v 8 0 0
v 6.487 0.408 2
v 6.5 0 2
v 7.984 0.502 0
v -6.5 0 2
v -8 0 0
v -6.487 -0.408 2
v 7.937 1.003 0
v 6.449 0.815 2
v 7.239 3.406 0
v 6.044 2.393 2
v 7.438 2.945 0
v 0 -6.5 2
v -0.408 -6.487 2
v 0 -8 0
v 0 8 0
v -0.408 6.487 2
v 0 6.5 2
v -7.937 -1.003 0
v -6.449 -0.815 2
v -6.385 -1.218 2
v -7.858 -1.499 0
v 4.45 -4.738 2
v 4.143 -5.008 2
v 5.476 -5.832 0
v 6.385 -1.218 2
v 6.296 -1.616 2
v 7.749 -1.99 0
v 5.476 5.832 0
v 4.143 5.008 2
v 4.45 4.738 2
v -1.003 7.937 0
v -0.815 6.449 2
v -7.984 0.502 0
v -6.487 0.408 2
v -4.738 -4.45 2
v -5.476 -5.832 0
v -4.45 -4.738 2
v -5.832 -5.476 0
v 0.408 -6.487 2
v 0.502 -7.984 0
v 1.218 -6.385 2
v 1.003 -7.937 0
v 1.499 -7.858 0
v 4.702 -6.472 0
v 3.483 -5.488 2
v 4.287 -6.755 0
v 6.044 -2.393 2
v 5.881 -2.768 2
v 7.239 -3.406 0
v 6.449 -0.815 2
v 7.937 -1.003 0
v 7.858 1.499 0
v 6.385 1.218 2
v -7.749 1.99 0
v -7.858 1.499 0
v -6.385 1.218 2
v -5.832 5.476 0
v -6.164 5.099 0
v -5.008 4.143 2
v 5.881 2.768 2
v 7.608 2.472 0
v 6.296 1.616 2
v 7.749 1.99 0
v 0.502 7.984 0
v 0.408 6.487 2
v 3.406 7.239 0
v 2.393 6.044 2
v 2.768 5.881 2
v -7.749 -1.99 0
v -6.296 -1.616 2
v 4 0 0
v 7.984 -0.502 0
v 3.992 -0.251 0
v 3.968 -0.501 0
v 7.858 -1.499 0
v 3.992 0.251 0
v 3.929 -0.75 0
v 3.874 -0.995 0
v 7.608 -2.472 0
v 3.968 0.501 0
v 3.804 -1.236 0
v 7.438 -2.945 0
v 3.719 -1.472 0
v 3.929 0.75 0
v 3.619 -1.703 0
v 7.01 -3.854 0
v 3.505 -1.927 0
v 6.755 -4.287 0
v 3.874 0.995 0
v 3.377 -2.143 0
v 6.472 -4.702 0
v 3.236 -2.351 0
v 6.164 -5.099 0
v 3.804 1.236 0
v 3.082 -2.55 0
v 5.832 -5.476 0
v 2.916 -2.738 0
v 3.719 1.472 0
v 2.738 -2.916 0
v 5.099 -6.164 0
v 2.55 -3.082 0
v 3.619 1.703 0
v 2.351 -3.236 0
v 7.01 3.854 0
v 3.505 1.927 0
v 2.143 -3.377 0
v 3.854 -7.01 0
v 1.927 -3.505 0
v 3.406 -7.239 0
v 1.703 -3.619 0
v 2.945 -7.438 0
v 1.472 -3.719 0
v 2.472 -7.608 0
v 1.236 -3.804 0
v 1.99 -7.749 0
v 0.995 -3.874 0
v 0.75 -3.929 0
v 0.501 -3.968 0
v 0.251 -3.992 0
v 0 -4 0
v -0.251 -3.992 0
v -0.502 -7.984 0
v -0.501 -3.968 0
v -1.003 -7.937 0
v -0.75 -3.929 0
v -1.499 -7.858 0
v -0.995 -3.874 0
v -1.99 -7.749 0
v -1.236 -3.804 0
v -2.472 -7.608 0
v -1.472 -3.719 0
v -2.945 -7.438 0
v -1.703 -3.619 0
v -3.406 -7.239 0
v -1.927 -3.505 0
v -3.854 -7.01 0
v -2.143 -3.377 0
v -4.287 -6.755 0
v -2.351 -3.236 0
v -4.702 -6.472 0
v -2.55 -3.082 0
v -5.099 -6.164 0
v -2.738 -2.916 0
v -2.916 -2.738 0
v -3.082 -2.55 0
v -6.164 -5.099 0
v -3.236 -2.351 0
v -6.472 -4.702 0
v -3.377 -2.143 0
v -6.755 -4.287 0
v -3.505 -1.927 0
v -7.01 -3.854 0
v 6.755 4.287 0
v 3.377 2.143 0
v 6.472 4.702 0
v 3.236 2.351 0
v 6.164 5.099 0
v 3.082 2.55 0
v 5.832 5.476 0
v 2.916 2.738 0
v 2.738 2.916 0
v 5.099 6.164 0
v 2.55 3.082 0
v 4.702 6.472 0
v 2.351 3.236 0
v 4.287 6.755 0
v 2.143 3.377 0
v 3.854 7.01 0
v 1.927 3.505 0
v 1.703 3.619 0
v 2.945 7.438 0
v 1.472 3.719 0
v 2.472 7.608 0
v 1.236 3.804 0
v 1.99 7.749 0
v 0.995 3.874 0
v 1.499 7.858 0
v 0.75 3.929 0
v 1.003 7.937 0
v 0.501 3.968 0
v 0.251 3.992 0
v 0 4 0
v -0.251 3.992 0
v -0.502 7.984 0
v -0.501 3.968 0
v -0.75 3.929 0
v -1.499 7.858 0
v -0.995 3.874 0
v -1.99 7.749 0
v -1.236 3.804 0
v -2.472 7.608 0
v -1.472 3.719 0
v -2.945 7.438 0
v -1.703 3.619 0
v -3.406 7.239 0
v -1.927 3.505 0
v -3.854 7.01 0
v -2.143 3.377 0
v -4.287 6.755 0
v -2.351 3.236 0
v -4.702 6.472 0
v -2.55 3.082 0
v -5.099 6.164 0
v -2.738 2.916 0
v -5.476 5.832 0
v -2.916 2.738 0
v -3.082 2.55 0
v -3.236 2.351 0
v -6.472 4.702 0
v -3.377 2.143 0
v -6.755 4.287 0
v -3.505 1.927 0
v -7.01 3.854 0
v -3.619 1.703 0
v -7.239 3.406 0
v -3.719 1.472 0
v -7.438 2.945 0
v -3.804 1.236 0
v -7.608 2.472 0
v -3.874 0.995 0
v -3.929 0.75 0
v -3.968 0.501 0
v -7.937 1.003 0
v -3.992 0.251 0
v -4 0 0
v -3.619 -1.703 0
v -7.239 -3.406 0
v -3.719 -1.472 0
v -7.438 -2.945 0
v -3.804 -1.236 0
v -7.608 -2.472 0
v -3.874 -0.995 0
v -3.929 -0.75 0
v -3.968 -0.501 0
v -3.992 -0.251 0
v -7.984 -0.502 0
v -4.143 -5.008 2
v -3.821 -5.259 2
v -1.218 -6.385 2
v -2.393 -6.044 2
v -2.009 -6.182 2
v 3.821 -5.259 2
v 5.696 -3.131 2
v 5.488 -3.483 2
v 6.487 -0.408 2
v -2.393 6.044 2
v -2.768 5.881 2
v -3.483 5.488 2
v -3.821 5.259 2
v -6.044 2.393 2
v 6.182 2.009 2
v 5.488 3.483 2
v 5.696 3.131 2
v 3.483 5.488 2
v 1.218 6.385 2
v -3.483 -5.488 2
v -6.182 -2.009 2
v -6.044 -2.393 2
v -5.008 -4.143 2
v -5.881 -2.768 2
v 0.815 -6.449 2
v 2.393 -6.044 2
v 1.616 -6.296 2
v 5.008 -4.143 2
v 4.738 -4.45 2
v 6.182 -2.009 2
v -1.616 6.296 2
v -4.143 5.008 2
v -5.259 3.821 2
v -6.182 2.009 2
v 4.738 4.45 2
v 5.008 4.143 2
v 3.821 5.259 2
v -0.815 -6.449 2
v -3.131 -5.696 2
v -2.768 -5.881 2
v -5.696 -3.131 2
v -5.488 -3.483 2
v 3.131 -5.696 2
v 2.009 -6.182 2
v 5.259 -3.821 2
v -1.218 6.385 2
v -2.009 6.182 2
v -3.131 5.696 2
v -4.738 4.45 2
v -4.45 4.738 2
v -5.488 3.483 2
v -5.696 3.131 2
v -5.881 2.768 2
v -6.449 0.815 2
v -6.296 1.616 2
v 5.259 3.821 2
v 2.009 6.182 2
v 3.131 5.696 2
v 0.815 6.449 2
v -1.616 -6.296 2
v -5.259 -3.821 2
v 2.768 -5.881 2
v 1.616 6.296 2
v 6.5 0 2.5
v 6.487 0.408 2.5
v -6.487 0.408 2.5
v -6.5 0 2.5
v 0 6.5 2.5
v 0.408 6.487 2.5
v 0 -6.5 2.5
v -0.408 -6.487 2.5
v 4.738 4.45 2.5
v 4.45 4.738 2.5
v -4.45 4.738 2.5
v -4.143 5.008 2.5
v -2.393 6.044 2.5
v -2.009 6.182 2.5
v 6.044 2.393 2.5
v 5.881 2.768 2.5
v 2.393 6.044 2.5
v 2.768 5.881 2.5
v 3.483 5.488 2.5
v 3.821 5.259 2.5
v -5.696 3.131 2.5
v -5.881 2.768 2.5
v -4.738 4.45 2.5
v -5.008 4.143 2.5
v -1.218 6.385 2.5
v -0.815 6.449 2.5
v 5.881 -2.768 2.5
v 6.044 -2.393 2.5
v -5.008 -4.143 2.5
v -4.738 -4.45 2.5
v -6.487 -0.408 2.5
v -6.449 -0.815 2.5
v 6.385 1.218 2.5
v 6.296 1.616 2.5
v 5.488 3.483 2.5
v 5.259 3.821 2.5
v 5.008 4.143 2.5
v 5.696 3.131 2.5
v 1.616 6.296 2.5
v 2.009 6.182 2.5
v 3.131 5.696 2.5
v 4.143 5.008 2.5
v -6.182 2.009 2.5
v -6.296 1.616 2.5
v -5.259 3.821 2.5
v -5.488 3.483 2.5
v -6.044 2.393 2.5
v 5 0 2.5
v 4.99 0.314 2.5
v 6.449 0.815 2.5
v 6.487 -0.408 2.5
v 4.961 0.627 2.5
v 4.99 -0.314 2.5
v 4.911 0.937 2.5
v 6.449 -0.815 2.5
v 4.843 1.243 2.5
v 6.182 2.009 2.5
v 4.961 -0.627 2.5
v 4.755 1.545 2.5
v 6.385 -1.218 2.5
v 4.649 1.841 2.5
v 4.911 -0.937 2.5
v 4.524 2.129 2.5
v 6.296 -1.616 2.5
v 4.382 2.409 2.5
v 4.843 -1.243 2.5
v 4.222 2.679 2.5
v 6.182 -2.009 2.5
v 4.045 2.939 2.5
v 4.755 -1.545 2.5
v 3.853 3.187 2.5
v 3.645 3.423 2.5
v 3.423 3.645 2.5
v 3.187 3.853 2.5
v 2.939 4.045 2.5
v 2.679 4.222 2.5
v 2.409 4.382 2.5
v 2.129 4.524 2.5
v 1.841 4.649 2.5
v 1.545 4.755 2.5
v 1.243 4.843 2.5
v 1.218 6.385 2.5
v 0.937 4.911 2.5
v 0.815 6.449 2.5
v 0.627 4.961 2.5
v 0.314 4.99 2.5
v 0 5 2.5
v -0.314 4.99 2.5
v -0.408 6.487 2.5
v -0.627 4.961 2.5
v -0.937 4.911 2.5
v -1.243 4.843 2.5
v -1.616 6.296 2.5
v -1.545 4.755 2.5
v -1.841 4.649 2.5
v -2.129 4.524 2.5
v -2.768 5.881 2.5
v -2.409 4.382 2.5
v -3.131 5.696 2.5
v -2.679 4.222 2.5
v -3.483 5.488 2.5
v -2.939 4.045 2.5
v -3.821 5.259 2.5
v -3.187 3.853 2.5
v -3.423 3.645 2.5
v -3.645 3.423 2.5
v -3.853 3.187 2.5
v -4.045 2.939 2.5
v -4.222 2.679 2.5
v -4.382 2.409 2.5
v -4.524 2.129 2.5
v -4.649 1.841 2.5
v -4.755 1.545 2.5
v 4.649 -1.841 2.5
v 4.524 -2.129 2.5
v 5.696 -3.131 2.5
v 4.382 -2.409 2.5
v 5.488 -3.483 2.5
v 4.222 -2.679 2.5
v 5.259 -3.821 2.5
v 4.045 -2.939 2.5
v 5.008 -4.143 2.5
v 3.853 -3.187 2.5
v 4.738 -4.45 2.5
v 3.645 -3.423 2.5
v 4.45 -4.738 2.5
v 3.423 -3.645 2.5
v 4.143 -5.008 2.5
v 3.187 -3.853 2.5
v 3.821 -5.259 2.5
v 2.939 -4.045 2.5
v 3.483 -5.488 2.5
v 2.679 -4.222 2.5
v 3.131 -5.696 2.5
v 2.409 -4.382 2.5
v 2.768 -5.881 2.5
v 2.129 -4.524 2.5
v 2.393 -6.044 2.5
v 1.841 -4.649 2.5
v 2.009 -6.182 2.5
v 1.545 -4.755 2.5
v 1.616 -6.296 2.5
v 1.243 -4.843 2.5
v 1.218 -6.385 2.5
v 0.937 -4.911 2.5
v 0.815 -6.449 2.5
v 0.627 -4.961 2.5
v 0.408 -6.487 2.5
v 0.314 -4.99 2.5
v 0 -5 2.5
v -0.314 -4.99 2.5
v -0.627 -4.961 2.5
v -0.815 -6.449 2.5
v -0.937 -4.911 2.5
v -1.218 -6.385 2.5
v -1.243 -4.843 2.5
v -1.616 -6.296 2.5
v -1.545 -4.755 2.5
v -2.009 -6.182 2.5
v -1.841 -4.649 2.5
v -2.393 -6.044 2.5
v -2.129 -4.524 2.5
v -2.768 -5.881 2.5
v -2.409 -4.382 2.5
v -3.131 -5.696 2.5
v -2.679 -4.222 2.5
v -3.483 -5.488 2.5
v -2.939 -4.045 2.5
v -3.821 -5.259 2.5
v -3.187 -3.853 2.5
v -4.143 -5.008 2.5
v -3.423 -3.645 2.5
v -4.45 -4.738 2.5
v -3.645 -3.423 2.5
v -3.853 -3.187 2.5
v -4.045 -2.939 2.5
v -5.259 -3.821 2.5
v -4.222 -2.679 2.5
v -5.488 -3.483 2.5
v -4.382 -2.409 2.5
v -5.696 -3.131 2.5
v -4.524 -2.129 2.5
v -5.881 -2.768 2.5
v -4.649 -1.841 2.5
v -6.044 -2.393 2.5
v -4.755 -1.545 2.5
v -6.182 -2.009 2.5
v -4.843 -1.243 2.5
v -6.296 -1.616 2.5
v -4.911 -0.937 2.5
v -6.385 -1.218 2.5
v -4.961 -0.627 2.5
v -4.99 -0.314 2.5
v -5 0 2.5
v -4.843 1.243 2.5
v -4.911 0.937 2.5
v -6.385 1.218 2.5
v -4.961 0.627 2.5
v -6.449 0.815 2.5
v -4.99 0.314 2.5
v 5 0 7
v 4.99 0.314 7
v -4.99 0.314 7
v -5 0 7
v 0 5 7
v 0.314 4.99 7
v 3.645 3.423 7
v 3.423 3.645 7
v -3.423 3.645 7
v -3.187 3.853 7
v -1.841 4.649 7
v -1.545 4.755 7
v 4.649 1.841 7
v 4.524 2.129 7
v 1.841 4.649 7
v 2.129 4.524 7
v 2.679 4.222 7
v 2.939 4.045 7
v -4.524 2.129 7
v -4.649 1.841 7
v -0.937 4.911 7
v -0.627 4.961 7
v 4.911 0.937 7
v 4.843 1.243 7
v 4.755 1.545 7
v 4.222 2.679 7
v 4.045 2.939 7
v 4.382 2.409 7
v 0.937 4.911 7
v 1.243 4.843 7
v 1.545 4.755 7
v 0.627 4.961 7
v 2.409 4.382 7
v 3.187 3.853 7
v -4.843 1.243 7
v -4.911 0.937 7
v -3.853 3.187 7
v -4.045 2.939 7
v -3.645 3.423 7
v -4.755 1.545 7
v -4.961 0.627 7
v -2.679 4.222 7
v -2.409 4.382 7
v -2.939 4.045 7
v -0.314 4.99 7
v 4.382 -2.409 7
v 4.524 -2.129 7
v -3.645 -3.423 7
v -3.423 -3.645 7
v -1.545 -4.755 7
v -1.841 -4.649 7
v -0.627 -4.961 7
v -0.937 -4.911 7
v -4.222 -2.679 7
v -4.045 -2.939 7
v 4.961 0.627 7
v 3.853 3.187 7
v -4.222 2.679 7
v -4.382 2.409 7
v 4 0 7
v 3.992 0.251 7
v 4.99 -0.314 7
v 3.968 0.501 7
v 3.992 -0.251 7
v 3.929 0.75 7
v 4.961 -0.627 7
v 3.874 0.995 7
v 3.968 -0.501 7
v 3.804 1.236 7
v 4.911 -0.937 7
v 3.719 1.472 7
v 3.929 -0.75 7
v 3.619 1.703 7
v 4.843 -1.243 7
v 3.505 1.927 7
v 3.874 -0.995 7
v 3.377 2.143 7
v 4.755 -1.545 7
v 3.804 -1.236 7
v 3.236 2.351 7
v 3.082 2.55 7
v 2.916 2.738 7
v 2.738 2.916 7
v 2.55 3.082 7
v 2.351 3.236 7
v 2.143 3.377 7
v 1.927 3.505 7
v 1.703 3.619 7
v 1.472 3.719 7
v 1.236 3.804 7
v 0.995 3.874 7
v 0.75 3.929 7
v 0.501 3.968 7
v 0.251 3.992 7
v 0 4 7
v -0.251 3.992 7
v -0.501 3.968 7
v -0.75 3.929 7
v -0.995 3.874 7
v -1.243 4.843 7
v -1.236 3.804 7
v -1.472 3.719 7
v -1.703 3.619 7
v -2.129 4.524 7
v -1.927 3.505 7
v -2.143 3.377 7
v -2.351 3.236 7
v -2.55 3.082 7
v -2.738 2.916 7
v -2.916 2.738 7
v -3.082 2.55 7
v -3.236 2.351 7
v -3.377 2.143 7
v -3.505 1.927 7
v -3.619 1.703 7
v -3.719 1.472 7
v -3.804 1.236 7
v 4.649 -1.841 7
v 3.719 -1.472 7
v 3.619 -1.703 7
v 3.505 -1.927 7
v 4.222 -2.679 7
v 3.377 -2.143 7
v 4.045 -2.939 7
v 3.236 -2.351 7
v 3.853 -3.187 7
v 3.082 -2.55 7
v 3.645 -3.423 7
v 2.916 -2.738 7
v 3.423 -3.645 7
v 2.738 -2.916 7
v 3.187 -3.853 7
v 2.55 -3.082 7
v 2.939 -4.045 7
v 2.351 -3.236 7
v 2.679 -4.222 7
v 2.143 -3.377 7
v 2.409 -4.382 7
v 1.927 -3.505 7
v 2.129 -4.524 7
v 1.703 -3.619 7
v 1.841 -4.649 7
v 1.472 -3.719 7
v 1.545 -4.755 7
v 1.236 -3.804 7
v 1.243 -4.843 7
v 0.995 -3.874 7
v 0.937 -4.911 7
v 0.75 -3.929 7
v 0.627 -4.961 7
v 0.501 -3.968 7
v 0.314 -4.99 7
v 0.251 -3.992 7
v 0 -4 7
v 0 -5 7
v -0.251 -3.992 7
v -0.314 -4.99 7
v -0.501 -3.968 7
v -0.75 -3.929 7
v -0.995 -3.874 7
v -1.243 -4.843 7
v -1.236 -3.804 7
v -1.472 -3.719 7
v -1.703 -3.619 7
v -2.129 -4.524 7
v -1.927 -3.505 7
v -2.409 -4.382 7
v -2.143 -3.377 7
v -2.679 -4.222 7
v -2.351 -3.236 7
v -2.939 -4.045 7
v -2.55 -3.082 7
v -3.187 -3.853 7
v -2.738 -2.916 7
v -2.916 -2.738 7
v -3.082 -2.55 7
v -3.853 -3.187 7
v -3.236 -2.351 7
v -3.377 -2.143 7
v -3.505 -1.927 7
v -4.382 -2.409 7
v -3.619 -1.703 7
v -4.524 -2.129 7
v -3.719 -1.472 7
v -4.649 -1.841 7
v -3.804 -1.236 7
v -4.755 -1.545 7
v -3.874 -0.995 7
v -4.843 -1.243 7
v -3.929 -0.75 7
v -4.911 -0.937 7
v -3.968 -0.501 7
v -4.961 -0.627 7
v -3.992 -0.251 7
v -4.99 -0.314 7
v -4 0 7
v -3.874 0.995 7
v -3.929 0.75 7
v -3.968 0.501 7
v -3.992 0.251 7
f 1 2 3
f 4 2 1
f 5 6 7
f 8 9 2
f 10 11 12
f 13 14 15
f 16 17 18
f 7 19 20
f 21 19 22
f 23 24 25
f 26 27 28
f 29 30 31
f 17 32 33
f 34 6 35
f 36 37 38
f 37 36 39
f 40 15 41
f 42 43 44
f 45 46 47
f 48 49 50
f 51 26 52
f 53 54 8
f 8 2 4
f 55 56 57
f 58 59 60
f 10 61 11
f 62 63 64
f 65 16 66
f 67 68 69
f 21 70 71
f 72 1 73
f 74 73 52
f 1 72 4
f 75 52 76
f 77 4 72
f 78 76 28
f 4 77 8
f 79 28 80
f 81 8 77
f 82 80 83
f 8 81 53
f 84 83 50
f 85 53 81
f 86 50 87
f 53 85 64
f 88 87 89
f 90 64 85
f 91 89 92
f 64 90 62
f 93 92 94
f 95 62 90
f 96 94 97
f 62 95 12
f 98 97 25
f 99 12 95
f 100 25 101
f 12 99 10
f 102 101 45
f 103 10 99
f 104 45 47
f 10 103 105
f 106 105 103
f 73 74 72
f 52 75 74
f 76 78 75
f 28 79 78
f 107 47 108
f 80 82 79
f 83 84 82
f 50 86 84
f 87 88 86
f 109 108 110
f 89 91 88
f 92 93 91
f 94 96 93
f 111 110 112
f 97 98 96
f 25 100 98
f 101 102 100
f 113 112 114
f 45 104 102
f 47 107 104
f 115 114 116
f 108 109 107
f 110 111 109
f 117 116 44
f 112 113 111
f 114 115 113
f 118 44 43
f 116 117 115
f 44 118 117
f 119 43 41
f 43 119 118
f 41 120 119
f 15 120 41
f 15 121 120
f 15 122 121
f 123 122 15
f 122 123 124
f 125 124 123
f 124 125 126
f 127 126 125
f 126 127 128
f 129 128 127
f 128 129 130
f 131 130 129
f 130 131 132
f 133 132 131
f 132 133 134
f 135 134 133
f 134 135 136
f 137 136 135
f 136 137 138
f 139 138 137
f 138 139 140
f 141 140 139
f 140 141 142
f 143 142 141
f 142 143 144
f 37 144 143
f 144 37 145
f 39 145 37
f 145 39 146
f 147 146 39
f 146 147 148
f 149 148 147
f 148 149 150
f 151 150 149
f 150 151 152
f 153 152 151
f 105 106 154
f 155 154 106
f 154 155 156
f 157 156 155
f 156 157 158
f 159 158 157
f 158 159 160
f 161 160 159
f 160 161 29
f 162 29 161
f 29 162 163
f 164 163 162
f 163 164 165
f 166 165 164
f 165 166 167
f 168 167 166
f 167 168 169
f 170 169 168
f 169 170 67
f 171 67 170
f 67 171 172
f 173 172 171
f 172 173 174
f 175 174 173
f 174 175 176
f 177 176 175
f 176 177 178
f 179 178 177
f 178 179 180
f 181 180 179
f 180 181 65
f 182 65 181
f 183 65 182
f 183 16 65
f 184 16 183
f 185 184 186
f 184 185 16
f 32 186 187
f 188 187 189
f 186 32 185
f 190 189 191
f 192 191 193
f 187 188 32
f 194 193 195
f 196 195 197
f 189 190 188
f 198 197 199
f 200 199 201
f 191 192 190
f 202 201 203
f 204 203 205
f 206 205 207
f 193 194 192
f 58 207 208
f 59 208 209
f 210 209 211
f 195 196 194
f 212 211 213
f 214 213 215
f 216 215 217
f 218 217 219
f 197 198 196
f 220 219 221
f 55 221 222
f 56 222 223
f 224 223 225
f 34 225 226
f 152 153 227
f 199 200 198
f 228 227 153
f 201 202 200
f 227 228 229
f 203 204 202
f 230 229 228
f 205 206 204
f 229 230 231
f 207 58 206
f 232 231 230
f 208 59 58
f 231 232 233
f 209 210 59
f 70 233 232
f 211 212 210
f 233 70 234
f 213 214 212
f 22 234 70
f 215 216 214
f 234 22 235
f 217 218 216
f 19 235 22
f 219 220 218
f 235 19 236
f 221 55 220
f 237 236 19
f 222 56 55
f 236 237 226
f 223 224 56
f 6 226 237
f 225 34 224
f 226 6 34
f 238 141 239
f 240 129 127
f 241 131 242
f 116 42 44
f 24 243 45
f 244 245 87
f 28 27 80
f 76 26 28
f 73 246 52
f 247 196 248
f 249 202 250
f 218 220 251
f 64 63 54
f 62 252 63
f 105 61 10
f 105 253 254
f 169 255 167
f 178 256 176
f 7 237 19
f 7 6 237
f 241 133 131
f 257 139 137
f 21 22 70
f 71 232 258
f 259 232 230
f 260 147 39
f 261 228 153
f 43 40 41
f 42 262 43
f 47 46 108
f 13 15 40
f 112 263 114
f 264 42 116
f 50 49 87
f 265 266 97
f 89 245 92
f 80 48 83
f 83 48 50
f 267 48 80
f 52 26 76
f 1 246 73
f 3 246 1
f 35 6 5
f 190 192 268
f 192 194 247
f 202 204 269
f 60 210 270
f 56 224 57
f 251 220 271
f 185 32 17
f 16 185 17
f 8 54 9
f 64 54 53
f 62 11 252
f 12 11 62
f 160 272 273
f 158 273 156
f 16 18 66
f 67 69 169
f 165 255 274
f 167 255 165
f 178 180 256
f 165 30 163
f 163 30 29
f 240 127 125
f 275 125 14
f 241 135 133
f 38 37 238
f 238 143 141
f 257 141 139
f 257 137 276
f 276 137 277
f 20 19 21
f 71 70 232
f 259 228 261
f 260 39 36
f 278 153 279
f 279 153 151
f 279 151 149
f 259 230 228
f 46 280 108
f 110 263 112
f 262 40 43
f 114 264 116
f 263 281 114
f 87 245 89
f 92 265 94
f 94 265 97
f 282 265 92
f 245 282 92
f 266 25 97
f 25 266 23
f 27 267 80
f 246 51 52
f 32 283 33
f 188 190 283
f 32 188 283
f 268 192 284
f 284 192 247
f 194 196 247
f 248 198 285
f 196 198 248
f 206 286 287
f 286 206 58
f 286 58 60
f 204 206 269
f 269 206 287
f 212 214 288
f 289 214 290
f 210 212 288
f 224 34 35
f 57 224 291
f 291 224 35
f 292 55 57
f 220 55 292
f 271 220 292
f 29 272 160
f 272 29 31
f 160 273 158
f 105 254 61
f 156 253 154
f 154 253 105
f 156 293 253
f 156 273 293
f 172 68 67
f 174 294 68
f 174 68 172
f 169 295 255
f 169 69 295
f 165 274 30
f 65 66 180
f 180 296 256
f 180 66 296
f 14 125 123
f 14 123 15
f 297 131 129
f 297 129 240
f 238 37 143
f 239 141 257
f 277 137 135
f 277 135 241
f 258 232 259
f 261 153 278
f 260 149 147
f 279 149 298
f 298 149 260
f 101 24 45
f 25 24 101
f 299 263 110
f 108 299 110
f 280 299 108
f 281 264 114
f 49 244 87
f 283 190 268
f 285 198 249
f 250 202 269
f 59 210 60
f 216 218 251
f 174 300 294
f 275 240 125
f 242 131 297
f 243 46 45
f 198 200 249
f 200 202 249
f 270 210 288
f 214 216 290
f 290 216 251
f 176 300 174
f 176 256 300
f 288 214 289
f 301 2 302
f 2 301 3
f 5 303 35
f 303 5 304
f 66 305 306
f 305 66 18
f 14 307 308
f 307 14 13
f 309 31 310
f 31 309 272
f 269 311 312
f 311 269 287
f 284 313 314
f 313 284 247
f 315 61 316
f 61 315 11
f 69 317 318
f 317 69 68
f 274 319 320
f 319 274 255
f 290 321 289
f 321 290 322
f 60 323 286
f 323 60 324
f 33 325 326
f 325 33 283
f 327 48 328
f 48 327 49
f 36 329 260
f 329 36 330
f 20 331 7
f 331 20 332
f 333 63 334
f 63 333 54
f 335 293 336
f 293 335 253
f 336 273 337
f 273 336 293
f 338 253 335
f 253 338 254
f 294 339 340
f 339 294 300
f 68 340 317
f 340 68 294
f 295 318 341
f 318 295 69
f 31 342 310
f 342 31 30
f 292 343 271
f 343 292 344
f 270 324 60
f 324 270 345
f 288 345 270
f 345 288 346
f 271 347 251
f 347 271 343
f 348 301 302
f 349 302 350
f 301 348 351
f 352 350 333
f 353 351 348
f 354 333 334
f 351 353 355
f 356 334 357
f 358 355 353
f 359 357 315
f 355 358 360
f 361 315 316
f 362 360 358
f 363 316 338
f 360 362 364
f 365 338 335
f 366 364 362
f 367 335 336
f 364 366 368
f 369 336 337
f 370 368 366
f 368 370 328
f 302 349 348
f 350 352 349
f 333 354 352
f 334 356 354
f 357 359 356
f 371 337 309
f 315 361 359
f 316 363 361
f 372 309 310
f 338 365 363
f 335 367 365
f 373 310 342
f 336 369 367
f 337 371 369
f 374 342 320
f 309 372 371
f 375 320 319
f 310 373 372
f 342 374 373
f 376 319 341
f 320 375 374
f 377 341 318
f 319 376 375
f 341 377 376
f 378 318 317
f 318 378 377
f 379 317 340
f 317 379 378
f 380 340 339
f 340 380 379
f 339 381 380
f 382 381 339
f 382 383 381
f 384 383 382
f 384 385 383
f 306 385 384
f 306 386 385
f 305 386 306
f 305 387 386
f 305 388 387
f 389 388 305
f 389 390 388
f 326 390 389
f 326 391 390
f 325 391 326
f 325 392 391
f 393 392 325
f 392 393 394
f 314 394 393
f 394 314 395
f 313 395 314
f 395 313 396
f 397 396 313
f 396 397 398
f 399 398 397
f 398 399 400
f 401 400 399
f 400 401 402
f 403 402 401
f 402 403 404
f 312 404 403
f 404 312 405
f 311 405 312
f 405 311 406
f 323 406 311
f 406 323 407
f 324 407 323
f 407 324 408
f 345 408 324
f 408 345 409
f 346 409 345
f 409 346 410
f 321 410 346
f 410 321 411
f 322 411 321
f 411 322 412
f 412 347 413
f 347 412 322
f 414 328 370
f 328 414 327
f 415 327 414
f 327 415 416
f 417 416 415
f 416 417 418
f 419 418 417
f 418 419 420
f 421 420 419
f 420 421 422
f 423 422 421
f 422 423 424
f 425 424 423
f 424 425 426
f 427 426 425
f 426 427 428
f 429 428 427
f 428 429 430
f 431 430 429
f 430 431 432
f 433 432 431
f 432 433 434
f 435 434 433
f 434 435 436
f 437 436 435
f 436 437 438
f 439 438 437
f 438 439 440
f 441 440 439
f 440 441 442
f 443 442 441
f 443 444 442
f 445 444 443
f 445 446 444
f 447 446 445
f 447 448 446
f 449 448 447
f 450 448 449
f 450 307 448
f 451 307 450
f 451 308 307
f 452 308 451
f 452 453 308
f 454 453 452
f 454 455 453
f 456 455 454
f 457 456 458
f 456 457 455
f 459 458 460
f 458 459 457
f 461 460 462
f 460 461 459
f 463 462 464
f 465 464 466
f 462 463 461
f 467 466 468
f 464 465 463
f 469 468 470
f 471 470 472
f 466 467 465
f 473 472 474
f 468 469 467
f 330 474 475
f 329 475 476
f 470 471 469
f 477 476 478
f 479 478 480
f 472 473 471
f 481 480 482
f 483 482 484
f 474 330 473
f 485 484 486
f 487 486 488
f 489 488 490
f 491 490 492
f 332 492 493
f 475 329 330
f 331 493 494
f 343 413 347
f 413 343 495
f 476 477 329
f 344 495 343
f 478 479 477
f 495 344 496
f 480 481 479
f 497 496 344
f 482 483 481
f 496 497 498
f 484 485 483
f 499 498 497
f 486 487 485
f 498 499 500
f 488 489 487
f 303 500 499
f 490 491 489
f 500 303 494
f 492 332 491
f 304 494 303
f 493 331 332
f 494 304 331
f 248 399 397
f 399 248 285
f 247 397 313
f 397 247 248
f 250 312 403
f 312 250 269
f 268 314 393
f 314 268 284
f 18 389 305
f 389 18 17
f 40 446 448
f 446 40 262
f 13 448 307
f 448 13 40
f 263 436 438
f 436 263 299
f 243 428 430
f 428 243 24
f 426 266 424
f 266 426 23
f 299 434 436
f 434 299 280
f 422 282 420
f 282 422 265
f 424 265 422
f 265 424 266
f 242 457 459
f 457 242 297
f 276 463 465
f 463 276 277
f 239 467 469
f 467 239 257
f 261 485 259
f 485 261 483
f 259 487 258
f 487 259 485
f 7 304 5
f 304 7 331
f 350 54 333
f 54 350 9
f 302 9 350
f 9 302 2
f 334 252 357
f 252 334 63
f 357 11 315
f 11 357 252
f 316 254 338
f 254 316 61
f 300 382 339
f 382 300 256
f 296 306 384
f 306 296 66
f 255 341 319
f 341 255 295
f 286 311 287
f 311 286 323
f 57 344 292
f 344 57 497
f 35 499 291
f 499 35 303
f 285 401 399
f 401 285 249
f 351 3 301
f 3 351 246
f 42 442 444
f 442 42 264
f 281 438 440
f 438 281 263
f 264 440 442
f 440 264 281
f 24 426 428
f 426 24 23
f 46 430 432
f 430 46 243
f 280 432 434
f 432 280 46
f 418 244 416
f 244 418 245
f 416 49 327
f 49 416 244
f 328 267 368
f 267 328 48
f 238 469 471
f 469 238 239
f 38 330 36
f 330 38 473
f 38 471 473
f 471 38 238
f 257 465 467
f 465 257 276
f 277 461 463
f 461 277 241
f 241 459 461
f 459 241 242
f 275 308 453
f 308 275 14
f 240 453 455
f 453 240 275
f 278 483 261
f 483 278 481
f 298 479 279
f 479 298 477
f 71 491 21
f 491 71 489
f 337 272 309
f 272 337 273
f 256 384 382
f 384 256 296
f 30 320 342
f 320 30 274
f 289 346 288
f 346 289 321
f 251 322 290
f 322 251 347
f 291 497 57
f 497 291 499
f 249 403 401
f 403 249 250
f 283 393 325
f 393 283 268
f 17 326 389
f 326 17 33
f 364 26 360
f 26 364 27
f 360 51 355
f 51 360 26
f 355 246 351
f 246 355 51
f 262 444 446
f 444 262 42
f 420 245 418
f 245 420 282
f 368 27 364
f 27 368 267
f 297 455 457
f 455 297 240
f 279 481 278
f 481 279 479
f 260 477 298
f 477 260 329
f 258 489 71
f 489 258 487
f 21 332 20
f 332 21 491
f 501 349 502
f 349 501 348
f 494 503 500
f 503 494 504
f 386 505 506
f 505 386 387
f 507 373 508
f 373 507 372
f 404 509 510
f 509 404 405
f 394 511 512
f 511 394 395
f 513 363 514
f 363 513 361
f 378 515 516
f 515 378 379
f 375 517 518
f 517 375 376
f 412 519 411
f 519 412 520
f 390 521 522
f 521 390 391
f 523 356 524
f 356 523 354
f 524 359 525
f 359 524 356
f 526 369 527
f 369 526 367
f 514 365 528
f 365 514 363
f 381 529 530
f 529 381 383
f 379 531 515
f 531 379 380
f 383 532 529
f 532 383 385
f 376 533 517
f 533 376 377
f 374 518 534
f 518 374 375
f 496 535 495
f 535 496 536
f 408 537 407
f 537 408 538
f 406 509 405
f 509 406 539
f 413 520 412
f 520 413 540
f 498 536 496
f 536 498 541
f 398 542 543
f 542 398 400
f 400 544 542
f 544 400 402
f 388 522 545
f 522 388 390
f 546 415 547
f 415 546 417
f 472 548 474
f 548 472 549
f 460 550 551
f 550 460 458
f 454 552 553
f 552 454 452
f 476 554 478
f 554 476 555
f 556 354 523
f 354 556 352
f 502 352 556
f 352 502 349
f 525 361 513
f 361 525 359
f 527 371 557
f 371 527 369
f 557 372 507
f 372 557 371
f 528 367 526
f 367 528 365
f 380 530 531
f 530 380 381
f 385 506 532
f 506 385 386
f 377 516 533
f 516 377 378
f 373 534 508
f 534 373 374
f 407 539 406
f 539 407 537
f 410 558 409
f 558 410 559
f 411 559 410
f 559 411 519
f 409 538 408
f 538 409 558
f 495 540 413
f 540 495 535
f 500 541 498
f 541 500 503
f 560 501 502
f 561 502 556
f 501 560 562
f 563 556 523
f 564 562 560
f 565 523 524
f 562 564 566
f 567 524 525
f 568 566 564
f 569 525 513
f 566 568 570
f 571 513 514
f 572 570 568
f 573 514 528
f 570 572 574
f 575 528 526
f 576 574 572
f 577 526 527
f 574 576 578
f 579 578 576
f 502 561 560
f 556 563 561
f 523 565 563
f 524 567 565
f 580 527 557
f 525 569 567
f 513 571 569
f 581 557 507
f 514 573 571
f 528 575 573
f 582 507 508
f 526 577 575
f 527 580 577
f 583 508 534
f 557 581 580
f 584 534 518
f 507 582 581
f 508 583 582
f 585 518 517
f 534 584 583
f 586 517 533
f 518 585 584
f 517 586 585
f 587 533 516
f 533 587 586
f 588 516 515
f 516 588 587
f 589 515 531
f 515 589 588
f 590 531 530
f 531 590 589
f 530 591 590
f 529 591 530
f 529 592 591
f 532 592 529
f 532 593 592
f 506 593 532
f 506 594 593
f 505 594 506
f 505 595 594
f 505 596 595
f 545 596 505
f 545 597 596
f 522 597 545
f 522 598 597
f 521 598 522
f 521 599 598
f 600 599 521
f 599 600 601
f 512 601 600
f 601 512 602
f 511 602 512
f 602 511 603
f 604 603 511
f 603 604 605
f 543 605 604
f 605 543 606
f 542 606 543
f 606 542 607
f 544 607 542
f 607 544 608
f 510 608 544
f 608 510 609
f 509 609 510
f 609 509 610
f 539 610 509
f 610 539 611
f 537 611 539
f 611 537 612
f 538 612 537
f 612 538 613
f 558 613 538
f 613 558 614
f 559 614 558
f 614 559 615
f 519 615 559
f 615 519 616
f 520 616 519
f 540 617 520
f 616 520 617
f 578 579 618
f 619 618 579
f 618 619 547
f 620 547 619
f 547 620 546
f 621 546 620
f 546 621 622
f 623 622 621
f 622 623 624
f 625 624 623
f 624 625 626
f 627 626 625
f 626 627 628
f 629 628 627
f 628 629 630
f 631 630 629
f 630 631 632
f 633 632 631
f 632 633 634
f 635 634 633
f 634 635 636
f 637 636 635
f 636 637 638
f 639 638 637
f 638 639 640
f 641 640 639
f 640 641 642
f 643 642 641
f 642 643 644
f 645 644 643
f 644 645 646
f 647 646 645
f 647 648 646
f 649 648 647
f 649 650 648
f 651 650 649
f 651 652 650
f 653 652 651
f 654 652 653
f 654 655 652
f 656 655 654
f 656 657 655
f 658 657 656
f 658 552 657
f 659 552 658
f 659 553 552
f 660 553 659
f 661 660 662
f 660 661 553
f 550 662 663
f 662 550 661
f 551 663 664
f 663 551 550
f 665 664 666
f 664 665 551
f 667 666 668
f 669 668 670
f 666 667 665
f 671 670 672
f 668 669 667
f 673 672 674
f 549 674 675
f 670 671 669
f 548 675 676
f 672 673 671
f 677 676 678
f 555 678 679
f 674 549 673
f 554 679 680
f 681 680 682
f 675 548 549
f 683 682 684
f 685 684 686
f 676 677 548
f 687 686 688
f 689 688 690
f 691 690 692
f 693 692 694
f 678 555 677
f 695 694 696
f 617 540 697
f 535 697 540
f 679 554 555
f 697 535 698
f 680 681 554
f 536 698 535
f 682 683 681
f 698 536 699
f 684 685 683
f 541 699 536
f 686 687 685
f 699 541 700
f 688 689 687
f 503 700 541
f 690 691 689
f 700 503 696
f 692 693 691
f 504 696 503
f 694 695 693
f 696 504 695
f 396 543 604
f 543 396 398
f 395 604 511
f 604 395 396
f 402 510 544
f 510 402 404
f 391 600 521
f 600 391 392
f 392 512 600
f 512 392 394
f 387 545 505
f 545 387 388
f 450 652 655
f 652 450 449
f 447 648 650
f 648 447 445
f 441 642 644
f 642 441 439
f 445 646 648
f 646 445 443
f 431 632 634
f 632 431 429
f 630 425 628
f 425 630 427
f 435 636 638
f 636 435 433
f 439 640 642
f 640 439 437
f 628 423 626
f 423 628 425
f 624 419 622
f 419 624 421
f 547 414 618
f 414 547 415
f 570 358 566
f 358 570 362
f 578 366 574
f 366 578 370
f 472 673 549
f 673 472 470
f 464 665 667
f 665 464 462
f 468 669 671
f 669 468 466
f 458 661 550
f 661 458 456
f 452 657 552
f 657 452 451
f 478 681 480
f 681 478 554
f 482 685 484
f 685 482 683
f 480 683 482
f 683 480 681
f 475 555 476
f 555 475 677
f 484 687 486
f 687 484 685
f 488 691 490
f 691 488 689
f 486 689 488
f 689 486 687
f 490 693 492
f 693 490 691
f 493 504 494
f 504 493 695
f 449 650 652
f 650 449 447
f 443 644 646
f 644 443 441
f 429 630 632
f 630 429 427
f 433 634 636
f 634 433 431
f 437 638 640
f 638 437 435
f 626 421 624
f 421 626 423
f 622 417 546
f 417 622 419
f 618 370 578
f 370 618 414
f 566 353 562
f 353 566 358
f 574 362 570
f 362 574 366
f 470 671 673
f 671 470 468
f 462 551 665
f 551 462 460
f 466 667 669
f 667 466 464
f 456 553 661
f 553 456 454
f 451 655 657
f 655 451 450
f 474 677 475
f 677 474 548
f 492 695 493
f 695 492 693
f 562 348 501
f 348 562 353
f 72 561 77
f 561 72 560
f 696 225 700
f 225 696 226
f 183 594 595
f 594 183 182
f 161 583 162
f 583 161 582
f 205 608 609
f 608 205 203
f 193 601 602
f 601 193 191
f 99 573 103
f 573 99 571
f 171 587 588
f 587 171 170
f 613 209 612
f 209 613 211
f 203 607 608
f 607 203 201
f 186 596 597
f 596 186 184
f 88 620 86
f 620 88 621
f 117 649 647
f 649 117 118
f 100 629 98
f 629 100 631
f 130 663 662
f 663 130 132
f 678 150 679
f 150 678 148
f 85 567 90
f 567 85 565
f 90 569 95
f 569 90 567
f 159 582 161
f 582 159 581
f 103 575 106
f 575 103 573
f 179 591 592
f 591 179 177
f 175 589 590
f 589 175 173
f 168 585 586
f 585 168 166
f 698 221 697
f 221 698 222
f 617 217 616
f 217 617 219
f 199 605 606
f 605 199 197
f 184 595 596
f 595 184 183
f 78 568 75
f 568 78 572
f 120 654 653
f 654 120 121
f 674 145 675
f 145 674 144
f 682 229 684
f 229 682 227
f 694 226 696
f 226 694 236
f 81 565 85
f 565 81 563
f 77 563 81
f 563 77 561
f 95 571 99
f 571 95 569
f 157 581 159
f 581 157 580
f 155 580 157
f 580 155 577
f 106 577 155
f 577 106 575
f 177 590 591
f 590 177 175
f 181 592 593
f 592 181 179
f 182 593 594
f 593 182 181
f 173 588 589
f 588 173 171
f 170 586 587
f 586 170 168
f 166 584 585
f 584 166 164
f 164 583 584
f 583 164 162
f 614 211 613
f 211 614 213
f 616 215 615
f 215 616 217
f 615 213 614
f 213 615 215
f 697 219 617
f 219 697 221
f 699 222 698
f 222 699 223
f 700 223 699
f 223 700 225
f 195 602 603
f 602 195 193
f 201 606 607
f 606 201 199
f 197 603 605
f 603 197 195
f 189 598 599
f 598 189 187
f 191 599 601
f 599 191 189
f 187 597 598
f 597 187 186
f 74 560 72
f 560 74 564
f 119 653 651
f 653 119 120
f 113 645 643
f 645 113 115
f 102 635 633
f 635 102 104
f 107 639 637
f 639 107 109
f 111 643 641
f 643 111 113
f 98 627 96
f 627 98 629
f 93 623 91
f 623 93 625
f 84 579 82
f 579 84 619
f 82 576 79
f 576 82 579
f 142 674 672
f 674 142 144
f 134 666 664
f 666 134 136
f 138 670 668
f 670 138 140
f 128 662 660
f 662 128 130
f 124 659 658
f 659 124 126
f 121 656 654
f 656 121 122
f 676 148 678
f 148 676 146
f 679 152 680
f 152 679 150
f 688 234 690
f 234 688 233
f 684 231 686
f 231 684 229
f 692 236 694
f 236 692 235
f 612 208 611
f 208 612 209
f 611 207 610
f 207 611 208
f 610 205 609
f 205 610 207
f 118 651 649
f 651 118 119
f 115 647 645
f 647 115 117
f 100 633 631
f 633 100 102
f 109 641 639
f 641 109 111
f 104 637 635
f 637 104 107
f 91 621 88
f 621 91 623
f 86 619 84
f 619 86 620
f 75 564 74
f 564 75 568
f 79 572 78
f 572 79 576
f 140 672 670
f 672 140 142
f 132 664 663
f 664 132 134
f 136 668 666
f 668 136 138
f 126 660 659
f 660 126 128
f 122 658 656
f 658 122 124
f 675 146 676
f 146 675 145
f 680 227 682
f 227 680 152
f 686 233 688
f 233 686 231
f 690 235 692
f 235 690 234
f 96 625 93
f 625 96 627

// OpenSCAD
$fn=100;
preview = 0.01;

difference() {
    union() {
        cylinder(d1=16, d2=13, h=2);
        translate([0, 0, 2])
            cylinder(d=13, h=0.5);
        translate([0, 0, 2.5])
            cylinder(d=10, h=4.5);
    }

    translate([0, 0, -preview])
        cylinder(d=8, h=7+2*preview);
}
